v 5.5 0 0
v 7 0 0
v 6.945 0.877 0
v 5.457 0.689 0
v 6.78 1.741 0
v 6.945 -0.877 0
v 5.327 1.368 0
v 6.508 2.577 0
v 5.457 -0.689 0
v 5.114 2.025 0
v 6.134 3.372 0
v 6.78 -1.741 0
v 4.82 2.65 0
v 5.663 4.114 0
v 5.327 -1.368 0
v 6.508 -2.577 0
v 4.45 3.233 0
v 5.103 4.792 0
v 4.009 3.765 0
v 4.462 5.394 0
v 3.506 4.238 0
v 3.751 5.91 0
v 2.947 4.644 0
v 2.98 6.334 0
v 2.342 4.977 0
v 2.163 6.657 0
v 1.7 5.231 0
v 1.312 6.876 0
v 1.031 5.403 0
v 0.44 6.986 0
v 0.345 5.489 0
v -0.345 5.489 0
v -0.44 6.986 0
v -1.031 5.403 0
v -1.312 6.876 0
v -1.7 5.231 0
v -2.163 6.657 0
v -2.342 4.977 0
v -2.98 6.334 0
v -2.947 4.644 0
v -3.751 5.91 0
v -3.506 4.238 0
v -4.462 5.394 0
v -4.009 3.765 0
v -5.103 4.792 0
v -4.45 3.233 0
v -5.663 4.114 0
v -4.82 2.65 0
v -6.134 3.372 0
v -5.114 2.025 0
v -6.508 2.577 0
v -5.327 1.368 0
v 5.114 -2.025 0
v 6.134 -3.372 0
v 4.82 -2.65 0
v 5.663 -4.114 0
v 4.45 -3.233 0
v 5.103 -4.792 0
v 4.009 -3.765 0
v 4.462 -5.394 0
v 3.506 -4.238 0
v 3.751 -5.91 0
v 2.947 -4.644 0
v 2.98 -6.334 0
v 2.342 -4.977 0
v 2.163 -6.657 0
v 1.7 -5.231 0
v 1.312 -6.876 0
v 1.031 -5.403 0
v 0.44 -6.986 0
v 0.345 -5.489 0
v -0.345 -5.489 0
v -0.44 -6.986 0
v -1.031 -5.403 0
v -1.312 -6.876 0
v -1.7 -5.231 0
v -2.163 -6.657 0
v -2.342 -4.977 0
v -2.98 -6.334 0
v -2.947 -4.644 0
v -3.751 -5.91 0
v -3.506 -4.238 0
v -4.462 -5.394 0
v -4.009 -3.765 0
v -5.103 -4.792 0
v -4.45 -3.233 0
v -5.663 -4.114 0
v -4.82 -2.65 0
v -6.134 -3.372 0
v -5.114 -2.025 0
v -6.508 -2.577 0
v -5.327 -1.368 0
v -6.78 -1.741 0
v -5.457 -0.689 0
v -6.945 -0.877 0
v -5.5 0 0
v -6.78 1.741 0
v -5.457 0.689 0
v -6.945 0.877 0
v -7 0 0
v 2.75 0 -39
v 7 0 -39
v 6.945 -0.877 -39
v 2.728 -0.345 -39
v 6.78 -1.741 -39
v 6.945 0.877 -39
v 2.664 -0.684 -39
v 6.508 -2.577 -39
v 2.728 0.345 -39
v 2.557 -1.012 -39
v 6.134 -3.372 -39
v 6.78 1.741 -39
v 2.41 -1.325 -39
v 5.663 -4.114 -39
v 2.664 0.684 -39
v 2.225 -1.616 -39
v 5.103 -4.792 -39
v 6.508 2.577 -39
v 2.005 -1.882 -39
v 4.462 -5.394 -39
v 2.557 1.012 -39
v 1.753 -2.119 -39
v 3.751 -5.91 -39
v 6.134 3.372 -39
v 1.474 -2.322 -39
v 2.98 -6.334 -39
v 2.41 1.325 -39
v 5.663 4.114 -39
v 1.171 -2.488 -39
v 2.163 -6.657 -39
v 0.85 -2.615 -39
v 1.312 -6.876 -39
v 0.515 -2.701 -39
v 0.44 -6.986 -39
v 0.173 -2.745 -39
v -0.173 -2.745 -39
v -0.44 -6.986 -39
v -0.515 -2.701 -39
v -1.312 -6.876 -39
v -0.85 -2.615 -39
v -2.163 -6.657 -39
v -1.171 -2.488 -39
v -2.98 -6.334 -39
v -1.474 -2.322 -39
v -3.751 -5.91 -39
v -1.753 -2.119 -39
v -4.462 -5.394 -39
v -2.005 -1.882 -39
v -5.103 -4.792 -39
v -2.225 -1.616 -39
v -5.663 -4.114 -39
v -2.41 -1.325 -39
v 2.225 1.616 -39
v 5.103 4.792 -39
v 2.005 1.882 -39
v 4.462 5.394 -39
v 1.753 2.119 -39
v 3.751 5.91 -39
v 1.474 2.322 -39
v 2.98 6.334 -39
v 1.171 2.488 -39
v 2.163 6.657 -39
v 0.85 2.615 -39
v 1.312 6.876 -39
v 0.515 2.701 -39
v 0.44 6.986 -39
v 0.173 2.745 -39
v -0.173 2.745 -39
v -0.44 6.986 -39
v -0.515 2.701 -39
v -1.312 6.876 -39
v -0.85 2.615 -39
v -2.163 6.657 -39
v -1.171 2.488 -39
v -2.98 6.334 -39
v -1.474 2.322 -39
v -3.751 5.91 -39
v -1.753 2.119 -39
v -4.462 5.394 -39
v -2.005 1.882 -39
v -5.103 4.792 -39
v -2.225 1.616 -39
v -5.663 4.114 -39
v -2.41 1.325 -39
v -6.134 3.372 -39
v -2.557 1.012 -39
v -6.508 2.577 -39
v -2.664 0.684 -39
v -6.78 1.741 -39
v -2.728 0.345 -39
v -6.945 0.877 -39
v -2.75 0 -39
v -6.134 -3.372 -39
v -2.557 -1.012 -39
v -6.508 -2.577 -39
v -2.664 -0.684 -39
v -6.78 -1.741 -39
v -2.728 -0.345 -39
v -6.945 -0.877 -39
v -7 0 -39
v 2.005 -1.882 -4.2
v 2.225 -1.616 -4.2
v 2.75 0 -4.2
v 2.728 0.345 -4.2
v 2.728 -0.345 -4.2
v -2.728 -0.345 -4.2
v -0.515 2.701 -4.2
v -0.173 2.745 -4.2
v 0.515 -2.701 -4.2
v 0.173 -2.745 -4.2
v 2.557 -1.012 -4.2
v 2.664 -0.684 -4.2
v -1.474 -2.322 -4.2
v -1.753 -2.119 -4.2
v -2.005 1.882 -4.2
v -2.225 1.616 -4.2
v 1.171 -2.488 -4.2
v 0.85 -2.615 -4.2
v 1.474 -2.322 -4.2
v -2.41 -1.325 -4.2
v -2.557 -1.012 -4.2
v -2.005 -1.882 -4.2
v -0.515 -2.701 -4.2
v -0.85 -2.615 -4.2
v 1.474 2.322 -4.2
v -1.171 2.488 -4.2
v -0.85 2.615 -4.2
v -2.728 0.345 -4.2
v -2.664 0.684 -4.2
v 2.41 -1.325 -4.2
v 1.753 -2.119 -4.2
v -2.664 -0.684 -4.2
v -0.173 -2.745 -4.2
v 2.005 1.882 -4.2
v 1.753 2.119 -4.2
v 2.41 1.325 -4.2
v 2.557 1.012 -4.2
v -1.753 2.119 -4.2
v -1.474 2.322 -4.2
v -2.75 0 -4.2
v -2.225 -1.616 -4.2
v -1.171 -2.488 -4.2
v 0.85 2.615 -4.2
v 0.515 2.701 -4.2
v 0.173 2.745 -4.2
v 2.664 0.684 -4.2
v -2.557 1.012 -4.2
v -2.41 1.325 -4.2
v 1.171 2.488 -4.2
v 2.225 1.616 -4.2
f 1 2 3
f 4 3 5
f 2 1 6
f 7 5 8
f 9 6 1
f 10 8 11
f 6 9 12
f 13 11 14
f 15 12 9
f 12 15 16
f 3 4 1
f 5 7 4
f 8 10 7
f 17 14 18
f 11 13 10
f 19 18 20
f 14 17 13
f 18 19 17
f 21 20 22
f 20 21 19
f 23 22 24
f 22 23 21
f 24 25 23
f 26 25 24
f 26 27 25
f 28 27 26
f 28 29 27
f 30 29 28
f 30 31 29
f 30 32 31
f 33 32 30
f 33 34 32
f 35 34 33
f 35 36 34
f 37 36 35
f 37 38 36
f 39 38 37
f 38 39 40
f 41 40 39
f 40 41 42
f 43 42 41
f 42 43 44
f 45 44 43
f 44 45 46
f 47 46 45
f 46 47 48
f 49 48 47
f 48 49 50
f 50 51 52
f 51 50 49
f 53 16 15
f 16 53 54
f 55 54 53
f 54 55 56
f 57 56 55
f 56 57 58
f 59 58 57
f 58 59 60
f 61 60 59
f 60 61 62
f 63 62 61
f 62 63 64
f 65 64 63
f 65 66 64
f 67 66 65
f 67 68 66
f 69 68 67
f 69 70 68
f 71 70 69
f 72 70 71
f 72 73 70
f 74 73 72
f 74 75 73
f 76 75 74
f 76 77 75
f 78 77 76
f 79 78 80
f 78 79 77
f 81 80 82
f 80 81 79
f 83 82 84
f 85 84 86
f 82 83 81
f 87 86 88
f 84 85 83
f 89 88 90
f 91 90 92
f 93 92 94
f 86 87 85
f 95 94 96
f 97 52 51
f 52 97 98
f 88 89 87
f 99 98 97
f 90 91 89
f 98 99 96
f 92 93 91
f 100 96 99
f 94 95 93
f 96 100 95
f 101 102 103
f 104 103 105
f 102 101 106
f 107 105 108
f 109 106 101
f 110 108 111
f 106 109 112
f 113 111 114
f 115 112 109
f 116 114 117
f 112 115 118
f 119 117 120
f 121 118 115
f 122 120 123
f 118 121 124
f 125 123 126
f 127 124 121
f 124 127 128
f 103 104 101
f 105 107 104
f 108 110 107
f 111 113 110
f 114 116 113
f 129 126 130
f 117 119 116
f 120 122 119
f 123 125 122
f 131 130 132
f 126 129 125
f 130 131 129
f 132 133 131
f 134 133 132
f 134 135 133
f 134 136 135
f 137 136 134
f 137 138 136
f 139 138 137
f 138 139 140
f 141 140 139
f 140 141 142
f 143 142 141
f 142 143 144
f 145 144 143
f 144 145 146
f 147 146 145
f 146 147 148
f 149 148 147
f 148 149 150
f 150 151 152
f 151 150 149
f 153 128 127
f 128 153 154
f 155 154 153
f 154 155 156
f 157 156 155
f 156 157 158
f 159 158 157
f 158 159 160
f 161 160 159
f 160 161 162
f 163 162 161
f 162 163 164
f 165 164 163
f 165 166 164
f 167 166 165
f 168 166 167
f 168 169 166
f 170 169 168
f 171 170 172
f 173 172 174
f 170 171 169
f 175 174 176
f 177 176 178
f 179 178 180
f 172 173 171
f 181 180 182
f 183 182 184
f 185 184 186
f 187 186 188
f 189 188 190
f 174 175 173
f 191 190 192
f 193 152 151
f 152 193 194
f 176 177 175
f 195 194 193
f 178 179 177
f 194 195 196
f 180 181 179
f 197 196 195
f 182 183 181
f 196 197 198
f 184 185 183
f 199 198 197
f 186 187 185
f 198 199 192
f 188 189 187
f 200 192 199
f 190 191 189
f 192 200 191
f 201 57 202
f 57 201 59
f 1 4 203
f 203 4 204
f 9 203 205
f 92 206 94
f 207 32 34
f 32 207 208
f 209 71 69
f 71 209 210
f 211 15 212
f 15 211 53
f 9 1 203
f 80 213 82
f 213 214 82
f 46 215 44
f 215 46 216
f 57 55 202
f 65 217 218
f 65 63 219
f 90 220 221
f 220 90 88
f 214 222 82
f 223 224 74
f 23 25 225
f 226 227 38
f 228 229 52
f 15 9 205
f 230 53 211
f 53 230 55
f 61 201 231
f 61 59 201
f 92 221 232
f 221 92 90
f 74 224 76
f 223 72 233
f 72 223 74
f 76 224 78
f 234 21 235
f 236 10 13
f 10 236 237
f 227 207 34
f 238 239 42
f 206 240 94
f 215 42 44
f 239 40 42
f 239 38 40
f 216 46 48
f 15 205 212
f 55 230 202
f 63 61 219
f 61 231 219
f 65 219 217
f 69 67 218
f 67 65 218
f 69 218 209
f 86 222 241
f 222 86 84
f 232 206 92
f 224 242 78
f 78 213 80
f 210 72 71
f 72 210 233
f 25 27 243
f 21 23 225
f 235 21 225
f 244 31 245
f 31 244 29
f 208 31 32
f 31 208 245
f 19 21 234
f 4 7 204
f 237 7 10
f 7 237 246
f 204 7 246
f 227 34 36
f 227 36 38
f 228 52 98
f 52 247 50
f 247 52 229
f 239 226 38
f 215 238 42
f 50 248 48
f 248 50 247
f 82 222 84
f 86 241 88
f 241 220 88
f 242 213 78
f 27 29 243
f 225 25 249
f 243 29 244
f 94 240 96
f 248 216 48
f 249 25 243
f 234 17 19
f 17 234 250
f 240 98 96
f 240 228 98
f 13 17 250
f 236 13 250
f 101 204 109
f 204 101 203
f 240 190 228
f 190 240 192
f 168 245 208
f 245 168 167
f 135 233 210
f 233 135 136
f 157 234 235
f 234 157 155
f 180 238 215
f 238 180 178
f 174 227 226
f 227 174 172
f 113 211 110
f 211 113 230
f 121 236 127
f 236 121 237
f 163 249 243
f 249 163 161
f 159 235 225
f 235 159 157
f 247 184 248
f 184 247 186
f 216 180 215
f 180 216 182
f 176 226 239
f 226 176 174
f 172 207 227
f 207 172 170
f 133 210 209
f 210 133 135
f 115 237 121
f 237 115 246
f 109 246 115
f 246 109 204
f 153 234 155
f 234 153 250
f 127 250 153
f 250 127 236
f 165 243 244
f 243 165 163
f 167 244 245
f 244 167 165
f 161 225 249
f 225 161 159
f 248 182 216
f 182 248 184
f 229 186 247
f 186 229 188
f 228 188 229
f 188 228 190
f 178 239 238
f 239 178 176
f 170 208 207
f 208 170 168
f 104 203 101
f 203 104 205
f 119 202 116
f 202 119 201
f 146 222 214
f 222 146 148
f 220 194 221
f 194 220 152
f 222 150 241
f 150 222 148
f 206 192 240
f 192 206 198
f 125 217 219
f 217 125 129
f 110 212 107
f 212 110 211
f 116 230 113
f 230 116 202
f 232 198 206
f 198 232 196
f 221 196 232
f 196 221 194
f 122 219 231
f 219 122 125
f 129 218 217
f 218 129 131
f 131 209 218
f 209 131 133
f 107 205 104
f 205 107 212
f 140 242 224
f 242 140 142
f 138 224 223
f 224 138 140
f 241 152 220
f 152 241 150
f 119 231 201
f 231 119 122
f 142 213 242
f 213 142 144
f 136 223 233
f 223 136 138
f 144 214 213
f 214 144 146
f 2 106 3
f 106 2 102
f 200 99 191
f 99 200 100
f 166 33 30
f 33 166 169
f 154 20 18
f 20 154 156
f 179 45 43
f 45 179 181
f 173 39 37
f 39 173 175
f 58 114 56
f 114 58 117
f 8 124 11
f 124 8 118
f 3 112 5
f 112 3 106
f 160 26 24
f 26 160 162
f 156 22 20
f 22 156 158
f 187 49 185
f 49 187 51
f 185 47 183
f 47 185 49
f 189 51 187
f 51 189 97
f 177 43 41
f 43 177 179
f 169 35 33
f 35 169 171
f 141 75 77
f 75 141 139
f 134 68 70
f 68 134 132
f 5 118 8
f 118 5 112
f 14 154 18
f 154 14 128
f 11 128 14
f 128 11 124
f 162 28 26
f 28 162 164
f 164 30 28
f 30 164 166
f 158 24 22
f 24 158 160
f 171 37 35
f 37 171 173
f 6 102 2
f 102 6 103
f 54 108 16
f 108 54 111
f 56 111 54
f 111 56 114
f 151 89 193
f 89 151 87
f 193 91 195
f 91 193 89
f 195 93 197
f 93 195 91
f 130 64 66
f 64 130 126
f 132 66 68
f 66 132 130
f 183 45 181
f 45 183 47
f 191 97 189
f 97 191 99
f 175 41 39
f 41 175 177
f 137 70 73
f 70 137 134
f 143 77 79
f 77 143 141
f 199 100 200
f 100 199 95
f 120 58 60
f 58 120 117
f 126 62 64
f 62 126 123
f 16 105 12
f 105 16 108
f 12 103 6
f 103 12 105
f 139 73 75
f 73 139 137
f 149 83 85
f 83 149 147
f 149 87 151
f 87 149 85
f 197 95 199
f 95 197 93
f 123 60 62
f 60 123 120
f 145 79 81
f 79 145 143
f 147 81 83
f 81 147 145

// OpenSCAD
$fn = 50;


difference() {
	union() {
		translate(v = [0, 0, -39.0000000000]) {
			cylinder(h = 39, r = 7.0000000000);
		}
		cylinder(h = 0, r = 13.0000000000);
	}
	union() {
		translate(v = [0, 0, 0]) {
			rotate(a = [0, 0, 0]) {
				difference() {
					union() {
						#translate(v = [0, 0, -39.0000000000]) {
							cylinder(h = 39, r = 2.2500000000);
						}
						#translate(v = [0, 0, -4.2000000000]) {
							cylinder(h = 4.2000000000, r1 = 2.7500000000, r2 = 5.5000000000);
						}
						#translate(v = [0, 0, -39.0000000000]) {
							cylinder(h = 39, r = 2.7500000000);
						}
						#translate(v = [0, 0, -39.0000000000]) {
							cylinder(h = 39, r = 2.2500000000);
						}
					}
					union();
				}
			}
		}
	}
}
